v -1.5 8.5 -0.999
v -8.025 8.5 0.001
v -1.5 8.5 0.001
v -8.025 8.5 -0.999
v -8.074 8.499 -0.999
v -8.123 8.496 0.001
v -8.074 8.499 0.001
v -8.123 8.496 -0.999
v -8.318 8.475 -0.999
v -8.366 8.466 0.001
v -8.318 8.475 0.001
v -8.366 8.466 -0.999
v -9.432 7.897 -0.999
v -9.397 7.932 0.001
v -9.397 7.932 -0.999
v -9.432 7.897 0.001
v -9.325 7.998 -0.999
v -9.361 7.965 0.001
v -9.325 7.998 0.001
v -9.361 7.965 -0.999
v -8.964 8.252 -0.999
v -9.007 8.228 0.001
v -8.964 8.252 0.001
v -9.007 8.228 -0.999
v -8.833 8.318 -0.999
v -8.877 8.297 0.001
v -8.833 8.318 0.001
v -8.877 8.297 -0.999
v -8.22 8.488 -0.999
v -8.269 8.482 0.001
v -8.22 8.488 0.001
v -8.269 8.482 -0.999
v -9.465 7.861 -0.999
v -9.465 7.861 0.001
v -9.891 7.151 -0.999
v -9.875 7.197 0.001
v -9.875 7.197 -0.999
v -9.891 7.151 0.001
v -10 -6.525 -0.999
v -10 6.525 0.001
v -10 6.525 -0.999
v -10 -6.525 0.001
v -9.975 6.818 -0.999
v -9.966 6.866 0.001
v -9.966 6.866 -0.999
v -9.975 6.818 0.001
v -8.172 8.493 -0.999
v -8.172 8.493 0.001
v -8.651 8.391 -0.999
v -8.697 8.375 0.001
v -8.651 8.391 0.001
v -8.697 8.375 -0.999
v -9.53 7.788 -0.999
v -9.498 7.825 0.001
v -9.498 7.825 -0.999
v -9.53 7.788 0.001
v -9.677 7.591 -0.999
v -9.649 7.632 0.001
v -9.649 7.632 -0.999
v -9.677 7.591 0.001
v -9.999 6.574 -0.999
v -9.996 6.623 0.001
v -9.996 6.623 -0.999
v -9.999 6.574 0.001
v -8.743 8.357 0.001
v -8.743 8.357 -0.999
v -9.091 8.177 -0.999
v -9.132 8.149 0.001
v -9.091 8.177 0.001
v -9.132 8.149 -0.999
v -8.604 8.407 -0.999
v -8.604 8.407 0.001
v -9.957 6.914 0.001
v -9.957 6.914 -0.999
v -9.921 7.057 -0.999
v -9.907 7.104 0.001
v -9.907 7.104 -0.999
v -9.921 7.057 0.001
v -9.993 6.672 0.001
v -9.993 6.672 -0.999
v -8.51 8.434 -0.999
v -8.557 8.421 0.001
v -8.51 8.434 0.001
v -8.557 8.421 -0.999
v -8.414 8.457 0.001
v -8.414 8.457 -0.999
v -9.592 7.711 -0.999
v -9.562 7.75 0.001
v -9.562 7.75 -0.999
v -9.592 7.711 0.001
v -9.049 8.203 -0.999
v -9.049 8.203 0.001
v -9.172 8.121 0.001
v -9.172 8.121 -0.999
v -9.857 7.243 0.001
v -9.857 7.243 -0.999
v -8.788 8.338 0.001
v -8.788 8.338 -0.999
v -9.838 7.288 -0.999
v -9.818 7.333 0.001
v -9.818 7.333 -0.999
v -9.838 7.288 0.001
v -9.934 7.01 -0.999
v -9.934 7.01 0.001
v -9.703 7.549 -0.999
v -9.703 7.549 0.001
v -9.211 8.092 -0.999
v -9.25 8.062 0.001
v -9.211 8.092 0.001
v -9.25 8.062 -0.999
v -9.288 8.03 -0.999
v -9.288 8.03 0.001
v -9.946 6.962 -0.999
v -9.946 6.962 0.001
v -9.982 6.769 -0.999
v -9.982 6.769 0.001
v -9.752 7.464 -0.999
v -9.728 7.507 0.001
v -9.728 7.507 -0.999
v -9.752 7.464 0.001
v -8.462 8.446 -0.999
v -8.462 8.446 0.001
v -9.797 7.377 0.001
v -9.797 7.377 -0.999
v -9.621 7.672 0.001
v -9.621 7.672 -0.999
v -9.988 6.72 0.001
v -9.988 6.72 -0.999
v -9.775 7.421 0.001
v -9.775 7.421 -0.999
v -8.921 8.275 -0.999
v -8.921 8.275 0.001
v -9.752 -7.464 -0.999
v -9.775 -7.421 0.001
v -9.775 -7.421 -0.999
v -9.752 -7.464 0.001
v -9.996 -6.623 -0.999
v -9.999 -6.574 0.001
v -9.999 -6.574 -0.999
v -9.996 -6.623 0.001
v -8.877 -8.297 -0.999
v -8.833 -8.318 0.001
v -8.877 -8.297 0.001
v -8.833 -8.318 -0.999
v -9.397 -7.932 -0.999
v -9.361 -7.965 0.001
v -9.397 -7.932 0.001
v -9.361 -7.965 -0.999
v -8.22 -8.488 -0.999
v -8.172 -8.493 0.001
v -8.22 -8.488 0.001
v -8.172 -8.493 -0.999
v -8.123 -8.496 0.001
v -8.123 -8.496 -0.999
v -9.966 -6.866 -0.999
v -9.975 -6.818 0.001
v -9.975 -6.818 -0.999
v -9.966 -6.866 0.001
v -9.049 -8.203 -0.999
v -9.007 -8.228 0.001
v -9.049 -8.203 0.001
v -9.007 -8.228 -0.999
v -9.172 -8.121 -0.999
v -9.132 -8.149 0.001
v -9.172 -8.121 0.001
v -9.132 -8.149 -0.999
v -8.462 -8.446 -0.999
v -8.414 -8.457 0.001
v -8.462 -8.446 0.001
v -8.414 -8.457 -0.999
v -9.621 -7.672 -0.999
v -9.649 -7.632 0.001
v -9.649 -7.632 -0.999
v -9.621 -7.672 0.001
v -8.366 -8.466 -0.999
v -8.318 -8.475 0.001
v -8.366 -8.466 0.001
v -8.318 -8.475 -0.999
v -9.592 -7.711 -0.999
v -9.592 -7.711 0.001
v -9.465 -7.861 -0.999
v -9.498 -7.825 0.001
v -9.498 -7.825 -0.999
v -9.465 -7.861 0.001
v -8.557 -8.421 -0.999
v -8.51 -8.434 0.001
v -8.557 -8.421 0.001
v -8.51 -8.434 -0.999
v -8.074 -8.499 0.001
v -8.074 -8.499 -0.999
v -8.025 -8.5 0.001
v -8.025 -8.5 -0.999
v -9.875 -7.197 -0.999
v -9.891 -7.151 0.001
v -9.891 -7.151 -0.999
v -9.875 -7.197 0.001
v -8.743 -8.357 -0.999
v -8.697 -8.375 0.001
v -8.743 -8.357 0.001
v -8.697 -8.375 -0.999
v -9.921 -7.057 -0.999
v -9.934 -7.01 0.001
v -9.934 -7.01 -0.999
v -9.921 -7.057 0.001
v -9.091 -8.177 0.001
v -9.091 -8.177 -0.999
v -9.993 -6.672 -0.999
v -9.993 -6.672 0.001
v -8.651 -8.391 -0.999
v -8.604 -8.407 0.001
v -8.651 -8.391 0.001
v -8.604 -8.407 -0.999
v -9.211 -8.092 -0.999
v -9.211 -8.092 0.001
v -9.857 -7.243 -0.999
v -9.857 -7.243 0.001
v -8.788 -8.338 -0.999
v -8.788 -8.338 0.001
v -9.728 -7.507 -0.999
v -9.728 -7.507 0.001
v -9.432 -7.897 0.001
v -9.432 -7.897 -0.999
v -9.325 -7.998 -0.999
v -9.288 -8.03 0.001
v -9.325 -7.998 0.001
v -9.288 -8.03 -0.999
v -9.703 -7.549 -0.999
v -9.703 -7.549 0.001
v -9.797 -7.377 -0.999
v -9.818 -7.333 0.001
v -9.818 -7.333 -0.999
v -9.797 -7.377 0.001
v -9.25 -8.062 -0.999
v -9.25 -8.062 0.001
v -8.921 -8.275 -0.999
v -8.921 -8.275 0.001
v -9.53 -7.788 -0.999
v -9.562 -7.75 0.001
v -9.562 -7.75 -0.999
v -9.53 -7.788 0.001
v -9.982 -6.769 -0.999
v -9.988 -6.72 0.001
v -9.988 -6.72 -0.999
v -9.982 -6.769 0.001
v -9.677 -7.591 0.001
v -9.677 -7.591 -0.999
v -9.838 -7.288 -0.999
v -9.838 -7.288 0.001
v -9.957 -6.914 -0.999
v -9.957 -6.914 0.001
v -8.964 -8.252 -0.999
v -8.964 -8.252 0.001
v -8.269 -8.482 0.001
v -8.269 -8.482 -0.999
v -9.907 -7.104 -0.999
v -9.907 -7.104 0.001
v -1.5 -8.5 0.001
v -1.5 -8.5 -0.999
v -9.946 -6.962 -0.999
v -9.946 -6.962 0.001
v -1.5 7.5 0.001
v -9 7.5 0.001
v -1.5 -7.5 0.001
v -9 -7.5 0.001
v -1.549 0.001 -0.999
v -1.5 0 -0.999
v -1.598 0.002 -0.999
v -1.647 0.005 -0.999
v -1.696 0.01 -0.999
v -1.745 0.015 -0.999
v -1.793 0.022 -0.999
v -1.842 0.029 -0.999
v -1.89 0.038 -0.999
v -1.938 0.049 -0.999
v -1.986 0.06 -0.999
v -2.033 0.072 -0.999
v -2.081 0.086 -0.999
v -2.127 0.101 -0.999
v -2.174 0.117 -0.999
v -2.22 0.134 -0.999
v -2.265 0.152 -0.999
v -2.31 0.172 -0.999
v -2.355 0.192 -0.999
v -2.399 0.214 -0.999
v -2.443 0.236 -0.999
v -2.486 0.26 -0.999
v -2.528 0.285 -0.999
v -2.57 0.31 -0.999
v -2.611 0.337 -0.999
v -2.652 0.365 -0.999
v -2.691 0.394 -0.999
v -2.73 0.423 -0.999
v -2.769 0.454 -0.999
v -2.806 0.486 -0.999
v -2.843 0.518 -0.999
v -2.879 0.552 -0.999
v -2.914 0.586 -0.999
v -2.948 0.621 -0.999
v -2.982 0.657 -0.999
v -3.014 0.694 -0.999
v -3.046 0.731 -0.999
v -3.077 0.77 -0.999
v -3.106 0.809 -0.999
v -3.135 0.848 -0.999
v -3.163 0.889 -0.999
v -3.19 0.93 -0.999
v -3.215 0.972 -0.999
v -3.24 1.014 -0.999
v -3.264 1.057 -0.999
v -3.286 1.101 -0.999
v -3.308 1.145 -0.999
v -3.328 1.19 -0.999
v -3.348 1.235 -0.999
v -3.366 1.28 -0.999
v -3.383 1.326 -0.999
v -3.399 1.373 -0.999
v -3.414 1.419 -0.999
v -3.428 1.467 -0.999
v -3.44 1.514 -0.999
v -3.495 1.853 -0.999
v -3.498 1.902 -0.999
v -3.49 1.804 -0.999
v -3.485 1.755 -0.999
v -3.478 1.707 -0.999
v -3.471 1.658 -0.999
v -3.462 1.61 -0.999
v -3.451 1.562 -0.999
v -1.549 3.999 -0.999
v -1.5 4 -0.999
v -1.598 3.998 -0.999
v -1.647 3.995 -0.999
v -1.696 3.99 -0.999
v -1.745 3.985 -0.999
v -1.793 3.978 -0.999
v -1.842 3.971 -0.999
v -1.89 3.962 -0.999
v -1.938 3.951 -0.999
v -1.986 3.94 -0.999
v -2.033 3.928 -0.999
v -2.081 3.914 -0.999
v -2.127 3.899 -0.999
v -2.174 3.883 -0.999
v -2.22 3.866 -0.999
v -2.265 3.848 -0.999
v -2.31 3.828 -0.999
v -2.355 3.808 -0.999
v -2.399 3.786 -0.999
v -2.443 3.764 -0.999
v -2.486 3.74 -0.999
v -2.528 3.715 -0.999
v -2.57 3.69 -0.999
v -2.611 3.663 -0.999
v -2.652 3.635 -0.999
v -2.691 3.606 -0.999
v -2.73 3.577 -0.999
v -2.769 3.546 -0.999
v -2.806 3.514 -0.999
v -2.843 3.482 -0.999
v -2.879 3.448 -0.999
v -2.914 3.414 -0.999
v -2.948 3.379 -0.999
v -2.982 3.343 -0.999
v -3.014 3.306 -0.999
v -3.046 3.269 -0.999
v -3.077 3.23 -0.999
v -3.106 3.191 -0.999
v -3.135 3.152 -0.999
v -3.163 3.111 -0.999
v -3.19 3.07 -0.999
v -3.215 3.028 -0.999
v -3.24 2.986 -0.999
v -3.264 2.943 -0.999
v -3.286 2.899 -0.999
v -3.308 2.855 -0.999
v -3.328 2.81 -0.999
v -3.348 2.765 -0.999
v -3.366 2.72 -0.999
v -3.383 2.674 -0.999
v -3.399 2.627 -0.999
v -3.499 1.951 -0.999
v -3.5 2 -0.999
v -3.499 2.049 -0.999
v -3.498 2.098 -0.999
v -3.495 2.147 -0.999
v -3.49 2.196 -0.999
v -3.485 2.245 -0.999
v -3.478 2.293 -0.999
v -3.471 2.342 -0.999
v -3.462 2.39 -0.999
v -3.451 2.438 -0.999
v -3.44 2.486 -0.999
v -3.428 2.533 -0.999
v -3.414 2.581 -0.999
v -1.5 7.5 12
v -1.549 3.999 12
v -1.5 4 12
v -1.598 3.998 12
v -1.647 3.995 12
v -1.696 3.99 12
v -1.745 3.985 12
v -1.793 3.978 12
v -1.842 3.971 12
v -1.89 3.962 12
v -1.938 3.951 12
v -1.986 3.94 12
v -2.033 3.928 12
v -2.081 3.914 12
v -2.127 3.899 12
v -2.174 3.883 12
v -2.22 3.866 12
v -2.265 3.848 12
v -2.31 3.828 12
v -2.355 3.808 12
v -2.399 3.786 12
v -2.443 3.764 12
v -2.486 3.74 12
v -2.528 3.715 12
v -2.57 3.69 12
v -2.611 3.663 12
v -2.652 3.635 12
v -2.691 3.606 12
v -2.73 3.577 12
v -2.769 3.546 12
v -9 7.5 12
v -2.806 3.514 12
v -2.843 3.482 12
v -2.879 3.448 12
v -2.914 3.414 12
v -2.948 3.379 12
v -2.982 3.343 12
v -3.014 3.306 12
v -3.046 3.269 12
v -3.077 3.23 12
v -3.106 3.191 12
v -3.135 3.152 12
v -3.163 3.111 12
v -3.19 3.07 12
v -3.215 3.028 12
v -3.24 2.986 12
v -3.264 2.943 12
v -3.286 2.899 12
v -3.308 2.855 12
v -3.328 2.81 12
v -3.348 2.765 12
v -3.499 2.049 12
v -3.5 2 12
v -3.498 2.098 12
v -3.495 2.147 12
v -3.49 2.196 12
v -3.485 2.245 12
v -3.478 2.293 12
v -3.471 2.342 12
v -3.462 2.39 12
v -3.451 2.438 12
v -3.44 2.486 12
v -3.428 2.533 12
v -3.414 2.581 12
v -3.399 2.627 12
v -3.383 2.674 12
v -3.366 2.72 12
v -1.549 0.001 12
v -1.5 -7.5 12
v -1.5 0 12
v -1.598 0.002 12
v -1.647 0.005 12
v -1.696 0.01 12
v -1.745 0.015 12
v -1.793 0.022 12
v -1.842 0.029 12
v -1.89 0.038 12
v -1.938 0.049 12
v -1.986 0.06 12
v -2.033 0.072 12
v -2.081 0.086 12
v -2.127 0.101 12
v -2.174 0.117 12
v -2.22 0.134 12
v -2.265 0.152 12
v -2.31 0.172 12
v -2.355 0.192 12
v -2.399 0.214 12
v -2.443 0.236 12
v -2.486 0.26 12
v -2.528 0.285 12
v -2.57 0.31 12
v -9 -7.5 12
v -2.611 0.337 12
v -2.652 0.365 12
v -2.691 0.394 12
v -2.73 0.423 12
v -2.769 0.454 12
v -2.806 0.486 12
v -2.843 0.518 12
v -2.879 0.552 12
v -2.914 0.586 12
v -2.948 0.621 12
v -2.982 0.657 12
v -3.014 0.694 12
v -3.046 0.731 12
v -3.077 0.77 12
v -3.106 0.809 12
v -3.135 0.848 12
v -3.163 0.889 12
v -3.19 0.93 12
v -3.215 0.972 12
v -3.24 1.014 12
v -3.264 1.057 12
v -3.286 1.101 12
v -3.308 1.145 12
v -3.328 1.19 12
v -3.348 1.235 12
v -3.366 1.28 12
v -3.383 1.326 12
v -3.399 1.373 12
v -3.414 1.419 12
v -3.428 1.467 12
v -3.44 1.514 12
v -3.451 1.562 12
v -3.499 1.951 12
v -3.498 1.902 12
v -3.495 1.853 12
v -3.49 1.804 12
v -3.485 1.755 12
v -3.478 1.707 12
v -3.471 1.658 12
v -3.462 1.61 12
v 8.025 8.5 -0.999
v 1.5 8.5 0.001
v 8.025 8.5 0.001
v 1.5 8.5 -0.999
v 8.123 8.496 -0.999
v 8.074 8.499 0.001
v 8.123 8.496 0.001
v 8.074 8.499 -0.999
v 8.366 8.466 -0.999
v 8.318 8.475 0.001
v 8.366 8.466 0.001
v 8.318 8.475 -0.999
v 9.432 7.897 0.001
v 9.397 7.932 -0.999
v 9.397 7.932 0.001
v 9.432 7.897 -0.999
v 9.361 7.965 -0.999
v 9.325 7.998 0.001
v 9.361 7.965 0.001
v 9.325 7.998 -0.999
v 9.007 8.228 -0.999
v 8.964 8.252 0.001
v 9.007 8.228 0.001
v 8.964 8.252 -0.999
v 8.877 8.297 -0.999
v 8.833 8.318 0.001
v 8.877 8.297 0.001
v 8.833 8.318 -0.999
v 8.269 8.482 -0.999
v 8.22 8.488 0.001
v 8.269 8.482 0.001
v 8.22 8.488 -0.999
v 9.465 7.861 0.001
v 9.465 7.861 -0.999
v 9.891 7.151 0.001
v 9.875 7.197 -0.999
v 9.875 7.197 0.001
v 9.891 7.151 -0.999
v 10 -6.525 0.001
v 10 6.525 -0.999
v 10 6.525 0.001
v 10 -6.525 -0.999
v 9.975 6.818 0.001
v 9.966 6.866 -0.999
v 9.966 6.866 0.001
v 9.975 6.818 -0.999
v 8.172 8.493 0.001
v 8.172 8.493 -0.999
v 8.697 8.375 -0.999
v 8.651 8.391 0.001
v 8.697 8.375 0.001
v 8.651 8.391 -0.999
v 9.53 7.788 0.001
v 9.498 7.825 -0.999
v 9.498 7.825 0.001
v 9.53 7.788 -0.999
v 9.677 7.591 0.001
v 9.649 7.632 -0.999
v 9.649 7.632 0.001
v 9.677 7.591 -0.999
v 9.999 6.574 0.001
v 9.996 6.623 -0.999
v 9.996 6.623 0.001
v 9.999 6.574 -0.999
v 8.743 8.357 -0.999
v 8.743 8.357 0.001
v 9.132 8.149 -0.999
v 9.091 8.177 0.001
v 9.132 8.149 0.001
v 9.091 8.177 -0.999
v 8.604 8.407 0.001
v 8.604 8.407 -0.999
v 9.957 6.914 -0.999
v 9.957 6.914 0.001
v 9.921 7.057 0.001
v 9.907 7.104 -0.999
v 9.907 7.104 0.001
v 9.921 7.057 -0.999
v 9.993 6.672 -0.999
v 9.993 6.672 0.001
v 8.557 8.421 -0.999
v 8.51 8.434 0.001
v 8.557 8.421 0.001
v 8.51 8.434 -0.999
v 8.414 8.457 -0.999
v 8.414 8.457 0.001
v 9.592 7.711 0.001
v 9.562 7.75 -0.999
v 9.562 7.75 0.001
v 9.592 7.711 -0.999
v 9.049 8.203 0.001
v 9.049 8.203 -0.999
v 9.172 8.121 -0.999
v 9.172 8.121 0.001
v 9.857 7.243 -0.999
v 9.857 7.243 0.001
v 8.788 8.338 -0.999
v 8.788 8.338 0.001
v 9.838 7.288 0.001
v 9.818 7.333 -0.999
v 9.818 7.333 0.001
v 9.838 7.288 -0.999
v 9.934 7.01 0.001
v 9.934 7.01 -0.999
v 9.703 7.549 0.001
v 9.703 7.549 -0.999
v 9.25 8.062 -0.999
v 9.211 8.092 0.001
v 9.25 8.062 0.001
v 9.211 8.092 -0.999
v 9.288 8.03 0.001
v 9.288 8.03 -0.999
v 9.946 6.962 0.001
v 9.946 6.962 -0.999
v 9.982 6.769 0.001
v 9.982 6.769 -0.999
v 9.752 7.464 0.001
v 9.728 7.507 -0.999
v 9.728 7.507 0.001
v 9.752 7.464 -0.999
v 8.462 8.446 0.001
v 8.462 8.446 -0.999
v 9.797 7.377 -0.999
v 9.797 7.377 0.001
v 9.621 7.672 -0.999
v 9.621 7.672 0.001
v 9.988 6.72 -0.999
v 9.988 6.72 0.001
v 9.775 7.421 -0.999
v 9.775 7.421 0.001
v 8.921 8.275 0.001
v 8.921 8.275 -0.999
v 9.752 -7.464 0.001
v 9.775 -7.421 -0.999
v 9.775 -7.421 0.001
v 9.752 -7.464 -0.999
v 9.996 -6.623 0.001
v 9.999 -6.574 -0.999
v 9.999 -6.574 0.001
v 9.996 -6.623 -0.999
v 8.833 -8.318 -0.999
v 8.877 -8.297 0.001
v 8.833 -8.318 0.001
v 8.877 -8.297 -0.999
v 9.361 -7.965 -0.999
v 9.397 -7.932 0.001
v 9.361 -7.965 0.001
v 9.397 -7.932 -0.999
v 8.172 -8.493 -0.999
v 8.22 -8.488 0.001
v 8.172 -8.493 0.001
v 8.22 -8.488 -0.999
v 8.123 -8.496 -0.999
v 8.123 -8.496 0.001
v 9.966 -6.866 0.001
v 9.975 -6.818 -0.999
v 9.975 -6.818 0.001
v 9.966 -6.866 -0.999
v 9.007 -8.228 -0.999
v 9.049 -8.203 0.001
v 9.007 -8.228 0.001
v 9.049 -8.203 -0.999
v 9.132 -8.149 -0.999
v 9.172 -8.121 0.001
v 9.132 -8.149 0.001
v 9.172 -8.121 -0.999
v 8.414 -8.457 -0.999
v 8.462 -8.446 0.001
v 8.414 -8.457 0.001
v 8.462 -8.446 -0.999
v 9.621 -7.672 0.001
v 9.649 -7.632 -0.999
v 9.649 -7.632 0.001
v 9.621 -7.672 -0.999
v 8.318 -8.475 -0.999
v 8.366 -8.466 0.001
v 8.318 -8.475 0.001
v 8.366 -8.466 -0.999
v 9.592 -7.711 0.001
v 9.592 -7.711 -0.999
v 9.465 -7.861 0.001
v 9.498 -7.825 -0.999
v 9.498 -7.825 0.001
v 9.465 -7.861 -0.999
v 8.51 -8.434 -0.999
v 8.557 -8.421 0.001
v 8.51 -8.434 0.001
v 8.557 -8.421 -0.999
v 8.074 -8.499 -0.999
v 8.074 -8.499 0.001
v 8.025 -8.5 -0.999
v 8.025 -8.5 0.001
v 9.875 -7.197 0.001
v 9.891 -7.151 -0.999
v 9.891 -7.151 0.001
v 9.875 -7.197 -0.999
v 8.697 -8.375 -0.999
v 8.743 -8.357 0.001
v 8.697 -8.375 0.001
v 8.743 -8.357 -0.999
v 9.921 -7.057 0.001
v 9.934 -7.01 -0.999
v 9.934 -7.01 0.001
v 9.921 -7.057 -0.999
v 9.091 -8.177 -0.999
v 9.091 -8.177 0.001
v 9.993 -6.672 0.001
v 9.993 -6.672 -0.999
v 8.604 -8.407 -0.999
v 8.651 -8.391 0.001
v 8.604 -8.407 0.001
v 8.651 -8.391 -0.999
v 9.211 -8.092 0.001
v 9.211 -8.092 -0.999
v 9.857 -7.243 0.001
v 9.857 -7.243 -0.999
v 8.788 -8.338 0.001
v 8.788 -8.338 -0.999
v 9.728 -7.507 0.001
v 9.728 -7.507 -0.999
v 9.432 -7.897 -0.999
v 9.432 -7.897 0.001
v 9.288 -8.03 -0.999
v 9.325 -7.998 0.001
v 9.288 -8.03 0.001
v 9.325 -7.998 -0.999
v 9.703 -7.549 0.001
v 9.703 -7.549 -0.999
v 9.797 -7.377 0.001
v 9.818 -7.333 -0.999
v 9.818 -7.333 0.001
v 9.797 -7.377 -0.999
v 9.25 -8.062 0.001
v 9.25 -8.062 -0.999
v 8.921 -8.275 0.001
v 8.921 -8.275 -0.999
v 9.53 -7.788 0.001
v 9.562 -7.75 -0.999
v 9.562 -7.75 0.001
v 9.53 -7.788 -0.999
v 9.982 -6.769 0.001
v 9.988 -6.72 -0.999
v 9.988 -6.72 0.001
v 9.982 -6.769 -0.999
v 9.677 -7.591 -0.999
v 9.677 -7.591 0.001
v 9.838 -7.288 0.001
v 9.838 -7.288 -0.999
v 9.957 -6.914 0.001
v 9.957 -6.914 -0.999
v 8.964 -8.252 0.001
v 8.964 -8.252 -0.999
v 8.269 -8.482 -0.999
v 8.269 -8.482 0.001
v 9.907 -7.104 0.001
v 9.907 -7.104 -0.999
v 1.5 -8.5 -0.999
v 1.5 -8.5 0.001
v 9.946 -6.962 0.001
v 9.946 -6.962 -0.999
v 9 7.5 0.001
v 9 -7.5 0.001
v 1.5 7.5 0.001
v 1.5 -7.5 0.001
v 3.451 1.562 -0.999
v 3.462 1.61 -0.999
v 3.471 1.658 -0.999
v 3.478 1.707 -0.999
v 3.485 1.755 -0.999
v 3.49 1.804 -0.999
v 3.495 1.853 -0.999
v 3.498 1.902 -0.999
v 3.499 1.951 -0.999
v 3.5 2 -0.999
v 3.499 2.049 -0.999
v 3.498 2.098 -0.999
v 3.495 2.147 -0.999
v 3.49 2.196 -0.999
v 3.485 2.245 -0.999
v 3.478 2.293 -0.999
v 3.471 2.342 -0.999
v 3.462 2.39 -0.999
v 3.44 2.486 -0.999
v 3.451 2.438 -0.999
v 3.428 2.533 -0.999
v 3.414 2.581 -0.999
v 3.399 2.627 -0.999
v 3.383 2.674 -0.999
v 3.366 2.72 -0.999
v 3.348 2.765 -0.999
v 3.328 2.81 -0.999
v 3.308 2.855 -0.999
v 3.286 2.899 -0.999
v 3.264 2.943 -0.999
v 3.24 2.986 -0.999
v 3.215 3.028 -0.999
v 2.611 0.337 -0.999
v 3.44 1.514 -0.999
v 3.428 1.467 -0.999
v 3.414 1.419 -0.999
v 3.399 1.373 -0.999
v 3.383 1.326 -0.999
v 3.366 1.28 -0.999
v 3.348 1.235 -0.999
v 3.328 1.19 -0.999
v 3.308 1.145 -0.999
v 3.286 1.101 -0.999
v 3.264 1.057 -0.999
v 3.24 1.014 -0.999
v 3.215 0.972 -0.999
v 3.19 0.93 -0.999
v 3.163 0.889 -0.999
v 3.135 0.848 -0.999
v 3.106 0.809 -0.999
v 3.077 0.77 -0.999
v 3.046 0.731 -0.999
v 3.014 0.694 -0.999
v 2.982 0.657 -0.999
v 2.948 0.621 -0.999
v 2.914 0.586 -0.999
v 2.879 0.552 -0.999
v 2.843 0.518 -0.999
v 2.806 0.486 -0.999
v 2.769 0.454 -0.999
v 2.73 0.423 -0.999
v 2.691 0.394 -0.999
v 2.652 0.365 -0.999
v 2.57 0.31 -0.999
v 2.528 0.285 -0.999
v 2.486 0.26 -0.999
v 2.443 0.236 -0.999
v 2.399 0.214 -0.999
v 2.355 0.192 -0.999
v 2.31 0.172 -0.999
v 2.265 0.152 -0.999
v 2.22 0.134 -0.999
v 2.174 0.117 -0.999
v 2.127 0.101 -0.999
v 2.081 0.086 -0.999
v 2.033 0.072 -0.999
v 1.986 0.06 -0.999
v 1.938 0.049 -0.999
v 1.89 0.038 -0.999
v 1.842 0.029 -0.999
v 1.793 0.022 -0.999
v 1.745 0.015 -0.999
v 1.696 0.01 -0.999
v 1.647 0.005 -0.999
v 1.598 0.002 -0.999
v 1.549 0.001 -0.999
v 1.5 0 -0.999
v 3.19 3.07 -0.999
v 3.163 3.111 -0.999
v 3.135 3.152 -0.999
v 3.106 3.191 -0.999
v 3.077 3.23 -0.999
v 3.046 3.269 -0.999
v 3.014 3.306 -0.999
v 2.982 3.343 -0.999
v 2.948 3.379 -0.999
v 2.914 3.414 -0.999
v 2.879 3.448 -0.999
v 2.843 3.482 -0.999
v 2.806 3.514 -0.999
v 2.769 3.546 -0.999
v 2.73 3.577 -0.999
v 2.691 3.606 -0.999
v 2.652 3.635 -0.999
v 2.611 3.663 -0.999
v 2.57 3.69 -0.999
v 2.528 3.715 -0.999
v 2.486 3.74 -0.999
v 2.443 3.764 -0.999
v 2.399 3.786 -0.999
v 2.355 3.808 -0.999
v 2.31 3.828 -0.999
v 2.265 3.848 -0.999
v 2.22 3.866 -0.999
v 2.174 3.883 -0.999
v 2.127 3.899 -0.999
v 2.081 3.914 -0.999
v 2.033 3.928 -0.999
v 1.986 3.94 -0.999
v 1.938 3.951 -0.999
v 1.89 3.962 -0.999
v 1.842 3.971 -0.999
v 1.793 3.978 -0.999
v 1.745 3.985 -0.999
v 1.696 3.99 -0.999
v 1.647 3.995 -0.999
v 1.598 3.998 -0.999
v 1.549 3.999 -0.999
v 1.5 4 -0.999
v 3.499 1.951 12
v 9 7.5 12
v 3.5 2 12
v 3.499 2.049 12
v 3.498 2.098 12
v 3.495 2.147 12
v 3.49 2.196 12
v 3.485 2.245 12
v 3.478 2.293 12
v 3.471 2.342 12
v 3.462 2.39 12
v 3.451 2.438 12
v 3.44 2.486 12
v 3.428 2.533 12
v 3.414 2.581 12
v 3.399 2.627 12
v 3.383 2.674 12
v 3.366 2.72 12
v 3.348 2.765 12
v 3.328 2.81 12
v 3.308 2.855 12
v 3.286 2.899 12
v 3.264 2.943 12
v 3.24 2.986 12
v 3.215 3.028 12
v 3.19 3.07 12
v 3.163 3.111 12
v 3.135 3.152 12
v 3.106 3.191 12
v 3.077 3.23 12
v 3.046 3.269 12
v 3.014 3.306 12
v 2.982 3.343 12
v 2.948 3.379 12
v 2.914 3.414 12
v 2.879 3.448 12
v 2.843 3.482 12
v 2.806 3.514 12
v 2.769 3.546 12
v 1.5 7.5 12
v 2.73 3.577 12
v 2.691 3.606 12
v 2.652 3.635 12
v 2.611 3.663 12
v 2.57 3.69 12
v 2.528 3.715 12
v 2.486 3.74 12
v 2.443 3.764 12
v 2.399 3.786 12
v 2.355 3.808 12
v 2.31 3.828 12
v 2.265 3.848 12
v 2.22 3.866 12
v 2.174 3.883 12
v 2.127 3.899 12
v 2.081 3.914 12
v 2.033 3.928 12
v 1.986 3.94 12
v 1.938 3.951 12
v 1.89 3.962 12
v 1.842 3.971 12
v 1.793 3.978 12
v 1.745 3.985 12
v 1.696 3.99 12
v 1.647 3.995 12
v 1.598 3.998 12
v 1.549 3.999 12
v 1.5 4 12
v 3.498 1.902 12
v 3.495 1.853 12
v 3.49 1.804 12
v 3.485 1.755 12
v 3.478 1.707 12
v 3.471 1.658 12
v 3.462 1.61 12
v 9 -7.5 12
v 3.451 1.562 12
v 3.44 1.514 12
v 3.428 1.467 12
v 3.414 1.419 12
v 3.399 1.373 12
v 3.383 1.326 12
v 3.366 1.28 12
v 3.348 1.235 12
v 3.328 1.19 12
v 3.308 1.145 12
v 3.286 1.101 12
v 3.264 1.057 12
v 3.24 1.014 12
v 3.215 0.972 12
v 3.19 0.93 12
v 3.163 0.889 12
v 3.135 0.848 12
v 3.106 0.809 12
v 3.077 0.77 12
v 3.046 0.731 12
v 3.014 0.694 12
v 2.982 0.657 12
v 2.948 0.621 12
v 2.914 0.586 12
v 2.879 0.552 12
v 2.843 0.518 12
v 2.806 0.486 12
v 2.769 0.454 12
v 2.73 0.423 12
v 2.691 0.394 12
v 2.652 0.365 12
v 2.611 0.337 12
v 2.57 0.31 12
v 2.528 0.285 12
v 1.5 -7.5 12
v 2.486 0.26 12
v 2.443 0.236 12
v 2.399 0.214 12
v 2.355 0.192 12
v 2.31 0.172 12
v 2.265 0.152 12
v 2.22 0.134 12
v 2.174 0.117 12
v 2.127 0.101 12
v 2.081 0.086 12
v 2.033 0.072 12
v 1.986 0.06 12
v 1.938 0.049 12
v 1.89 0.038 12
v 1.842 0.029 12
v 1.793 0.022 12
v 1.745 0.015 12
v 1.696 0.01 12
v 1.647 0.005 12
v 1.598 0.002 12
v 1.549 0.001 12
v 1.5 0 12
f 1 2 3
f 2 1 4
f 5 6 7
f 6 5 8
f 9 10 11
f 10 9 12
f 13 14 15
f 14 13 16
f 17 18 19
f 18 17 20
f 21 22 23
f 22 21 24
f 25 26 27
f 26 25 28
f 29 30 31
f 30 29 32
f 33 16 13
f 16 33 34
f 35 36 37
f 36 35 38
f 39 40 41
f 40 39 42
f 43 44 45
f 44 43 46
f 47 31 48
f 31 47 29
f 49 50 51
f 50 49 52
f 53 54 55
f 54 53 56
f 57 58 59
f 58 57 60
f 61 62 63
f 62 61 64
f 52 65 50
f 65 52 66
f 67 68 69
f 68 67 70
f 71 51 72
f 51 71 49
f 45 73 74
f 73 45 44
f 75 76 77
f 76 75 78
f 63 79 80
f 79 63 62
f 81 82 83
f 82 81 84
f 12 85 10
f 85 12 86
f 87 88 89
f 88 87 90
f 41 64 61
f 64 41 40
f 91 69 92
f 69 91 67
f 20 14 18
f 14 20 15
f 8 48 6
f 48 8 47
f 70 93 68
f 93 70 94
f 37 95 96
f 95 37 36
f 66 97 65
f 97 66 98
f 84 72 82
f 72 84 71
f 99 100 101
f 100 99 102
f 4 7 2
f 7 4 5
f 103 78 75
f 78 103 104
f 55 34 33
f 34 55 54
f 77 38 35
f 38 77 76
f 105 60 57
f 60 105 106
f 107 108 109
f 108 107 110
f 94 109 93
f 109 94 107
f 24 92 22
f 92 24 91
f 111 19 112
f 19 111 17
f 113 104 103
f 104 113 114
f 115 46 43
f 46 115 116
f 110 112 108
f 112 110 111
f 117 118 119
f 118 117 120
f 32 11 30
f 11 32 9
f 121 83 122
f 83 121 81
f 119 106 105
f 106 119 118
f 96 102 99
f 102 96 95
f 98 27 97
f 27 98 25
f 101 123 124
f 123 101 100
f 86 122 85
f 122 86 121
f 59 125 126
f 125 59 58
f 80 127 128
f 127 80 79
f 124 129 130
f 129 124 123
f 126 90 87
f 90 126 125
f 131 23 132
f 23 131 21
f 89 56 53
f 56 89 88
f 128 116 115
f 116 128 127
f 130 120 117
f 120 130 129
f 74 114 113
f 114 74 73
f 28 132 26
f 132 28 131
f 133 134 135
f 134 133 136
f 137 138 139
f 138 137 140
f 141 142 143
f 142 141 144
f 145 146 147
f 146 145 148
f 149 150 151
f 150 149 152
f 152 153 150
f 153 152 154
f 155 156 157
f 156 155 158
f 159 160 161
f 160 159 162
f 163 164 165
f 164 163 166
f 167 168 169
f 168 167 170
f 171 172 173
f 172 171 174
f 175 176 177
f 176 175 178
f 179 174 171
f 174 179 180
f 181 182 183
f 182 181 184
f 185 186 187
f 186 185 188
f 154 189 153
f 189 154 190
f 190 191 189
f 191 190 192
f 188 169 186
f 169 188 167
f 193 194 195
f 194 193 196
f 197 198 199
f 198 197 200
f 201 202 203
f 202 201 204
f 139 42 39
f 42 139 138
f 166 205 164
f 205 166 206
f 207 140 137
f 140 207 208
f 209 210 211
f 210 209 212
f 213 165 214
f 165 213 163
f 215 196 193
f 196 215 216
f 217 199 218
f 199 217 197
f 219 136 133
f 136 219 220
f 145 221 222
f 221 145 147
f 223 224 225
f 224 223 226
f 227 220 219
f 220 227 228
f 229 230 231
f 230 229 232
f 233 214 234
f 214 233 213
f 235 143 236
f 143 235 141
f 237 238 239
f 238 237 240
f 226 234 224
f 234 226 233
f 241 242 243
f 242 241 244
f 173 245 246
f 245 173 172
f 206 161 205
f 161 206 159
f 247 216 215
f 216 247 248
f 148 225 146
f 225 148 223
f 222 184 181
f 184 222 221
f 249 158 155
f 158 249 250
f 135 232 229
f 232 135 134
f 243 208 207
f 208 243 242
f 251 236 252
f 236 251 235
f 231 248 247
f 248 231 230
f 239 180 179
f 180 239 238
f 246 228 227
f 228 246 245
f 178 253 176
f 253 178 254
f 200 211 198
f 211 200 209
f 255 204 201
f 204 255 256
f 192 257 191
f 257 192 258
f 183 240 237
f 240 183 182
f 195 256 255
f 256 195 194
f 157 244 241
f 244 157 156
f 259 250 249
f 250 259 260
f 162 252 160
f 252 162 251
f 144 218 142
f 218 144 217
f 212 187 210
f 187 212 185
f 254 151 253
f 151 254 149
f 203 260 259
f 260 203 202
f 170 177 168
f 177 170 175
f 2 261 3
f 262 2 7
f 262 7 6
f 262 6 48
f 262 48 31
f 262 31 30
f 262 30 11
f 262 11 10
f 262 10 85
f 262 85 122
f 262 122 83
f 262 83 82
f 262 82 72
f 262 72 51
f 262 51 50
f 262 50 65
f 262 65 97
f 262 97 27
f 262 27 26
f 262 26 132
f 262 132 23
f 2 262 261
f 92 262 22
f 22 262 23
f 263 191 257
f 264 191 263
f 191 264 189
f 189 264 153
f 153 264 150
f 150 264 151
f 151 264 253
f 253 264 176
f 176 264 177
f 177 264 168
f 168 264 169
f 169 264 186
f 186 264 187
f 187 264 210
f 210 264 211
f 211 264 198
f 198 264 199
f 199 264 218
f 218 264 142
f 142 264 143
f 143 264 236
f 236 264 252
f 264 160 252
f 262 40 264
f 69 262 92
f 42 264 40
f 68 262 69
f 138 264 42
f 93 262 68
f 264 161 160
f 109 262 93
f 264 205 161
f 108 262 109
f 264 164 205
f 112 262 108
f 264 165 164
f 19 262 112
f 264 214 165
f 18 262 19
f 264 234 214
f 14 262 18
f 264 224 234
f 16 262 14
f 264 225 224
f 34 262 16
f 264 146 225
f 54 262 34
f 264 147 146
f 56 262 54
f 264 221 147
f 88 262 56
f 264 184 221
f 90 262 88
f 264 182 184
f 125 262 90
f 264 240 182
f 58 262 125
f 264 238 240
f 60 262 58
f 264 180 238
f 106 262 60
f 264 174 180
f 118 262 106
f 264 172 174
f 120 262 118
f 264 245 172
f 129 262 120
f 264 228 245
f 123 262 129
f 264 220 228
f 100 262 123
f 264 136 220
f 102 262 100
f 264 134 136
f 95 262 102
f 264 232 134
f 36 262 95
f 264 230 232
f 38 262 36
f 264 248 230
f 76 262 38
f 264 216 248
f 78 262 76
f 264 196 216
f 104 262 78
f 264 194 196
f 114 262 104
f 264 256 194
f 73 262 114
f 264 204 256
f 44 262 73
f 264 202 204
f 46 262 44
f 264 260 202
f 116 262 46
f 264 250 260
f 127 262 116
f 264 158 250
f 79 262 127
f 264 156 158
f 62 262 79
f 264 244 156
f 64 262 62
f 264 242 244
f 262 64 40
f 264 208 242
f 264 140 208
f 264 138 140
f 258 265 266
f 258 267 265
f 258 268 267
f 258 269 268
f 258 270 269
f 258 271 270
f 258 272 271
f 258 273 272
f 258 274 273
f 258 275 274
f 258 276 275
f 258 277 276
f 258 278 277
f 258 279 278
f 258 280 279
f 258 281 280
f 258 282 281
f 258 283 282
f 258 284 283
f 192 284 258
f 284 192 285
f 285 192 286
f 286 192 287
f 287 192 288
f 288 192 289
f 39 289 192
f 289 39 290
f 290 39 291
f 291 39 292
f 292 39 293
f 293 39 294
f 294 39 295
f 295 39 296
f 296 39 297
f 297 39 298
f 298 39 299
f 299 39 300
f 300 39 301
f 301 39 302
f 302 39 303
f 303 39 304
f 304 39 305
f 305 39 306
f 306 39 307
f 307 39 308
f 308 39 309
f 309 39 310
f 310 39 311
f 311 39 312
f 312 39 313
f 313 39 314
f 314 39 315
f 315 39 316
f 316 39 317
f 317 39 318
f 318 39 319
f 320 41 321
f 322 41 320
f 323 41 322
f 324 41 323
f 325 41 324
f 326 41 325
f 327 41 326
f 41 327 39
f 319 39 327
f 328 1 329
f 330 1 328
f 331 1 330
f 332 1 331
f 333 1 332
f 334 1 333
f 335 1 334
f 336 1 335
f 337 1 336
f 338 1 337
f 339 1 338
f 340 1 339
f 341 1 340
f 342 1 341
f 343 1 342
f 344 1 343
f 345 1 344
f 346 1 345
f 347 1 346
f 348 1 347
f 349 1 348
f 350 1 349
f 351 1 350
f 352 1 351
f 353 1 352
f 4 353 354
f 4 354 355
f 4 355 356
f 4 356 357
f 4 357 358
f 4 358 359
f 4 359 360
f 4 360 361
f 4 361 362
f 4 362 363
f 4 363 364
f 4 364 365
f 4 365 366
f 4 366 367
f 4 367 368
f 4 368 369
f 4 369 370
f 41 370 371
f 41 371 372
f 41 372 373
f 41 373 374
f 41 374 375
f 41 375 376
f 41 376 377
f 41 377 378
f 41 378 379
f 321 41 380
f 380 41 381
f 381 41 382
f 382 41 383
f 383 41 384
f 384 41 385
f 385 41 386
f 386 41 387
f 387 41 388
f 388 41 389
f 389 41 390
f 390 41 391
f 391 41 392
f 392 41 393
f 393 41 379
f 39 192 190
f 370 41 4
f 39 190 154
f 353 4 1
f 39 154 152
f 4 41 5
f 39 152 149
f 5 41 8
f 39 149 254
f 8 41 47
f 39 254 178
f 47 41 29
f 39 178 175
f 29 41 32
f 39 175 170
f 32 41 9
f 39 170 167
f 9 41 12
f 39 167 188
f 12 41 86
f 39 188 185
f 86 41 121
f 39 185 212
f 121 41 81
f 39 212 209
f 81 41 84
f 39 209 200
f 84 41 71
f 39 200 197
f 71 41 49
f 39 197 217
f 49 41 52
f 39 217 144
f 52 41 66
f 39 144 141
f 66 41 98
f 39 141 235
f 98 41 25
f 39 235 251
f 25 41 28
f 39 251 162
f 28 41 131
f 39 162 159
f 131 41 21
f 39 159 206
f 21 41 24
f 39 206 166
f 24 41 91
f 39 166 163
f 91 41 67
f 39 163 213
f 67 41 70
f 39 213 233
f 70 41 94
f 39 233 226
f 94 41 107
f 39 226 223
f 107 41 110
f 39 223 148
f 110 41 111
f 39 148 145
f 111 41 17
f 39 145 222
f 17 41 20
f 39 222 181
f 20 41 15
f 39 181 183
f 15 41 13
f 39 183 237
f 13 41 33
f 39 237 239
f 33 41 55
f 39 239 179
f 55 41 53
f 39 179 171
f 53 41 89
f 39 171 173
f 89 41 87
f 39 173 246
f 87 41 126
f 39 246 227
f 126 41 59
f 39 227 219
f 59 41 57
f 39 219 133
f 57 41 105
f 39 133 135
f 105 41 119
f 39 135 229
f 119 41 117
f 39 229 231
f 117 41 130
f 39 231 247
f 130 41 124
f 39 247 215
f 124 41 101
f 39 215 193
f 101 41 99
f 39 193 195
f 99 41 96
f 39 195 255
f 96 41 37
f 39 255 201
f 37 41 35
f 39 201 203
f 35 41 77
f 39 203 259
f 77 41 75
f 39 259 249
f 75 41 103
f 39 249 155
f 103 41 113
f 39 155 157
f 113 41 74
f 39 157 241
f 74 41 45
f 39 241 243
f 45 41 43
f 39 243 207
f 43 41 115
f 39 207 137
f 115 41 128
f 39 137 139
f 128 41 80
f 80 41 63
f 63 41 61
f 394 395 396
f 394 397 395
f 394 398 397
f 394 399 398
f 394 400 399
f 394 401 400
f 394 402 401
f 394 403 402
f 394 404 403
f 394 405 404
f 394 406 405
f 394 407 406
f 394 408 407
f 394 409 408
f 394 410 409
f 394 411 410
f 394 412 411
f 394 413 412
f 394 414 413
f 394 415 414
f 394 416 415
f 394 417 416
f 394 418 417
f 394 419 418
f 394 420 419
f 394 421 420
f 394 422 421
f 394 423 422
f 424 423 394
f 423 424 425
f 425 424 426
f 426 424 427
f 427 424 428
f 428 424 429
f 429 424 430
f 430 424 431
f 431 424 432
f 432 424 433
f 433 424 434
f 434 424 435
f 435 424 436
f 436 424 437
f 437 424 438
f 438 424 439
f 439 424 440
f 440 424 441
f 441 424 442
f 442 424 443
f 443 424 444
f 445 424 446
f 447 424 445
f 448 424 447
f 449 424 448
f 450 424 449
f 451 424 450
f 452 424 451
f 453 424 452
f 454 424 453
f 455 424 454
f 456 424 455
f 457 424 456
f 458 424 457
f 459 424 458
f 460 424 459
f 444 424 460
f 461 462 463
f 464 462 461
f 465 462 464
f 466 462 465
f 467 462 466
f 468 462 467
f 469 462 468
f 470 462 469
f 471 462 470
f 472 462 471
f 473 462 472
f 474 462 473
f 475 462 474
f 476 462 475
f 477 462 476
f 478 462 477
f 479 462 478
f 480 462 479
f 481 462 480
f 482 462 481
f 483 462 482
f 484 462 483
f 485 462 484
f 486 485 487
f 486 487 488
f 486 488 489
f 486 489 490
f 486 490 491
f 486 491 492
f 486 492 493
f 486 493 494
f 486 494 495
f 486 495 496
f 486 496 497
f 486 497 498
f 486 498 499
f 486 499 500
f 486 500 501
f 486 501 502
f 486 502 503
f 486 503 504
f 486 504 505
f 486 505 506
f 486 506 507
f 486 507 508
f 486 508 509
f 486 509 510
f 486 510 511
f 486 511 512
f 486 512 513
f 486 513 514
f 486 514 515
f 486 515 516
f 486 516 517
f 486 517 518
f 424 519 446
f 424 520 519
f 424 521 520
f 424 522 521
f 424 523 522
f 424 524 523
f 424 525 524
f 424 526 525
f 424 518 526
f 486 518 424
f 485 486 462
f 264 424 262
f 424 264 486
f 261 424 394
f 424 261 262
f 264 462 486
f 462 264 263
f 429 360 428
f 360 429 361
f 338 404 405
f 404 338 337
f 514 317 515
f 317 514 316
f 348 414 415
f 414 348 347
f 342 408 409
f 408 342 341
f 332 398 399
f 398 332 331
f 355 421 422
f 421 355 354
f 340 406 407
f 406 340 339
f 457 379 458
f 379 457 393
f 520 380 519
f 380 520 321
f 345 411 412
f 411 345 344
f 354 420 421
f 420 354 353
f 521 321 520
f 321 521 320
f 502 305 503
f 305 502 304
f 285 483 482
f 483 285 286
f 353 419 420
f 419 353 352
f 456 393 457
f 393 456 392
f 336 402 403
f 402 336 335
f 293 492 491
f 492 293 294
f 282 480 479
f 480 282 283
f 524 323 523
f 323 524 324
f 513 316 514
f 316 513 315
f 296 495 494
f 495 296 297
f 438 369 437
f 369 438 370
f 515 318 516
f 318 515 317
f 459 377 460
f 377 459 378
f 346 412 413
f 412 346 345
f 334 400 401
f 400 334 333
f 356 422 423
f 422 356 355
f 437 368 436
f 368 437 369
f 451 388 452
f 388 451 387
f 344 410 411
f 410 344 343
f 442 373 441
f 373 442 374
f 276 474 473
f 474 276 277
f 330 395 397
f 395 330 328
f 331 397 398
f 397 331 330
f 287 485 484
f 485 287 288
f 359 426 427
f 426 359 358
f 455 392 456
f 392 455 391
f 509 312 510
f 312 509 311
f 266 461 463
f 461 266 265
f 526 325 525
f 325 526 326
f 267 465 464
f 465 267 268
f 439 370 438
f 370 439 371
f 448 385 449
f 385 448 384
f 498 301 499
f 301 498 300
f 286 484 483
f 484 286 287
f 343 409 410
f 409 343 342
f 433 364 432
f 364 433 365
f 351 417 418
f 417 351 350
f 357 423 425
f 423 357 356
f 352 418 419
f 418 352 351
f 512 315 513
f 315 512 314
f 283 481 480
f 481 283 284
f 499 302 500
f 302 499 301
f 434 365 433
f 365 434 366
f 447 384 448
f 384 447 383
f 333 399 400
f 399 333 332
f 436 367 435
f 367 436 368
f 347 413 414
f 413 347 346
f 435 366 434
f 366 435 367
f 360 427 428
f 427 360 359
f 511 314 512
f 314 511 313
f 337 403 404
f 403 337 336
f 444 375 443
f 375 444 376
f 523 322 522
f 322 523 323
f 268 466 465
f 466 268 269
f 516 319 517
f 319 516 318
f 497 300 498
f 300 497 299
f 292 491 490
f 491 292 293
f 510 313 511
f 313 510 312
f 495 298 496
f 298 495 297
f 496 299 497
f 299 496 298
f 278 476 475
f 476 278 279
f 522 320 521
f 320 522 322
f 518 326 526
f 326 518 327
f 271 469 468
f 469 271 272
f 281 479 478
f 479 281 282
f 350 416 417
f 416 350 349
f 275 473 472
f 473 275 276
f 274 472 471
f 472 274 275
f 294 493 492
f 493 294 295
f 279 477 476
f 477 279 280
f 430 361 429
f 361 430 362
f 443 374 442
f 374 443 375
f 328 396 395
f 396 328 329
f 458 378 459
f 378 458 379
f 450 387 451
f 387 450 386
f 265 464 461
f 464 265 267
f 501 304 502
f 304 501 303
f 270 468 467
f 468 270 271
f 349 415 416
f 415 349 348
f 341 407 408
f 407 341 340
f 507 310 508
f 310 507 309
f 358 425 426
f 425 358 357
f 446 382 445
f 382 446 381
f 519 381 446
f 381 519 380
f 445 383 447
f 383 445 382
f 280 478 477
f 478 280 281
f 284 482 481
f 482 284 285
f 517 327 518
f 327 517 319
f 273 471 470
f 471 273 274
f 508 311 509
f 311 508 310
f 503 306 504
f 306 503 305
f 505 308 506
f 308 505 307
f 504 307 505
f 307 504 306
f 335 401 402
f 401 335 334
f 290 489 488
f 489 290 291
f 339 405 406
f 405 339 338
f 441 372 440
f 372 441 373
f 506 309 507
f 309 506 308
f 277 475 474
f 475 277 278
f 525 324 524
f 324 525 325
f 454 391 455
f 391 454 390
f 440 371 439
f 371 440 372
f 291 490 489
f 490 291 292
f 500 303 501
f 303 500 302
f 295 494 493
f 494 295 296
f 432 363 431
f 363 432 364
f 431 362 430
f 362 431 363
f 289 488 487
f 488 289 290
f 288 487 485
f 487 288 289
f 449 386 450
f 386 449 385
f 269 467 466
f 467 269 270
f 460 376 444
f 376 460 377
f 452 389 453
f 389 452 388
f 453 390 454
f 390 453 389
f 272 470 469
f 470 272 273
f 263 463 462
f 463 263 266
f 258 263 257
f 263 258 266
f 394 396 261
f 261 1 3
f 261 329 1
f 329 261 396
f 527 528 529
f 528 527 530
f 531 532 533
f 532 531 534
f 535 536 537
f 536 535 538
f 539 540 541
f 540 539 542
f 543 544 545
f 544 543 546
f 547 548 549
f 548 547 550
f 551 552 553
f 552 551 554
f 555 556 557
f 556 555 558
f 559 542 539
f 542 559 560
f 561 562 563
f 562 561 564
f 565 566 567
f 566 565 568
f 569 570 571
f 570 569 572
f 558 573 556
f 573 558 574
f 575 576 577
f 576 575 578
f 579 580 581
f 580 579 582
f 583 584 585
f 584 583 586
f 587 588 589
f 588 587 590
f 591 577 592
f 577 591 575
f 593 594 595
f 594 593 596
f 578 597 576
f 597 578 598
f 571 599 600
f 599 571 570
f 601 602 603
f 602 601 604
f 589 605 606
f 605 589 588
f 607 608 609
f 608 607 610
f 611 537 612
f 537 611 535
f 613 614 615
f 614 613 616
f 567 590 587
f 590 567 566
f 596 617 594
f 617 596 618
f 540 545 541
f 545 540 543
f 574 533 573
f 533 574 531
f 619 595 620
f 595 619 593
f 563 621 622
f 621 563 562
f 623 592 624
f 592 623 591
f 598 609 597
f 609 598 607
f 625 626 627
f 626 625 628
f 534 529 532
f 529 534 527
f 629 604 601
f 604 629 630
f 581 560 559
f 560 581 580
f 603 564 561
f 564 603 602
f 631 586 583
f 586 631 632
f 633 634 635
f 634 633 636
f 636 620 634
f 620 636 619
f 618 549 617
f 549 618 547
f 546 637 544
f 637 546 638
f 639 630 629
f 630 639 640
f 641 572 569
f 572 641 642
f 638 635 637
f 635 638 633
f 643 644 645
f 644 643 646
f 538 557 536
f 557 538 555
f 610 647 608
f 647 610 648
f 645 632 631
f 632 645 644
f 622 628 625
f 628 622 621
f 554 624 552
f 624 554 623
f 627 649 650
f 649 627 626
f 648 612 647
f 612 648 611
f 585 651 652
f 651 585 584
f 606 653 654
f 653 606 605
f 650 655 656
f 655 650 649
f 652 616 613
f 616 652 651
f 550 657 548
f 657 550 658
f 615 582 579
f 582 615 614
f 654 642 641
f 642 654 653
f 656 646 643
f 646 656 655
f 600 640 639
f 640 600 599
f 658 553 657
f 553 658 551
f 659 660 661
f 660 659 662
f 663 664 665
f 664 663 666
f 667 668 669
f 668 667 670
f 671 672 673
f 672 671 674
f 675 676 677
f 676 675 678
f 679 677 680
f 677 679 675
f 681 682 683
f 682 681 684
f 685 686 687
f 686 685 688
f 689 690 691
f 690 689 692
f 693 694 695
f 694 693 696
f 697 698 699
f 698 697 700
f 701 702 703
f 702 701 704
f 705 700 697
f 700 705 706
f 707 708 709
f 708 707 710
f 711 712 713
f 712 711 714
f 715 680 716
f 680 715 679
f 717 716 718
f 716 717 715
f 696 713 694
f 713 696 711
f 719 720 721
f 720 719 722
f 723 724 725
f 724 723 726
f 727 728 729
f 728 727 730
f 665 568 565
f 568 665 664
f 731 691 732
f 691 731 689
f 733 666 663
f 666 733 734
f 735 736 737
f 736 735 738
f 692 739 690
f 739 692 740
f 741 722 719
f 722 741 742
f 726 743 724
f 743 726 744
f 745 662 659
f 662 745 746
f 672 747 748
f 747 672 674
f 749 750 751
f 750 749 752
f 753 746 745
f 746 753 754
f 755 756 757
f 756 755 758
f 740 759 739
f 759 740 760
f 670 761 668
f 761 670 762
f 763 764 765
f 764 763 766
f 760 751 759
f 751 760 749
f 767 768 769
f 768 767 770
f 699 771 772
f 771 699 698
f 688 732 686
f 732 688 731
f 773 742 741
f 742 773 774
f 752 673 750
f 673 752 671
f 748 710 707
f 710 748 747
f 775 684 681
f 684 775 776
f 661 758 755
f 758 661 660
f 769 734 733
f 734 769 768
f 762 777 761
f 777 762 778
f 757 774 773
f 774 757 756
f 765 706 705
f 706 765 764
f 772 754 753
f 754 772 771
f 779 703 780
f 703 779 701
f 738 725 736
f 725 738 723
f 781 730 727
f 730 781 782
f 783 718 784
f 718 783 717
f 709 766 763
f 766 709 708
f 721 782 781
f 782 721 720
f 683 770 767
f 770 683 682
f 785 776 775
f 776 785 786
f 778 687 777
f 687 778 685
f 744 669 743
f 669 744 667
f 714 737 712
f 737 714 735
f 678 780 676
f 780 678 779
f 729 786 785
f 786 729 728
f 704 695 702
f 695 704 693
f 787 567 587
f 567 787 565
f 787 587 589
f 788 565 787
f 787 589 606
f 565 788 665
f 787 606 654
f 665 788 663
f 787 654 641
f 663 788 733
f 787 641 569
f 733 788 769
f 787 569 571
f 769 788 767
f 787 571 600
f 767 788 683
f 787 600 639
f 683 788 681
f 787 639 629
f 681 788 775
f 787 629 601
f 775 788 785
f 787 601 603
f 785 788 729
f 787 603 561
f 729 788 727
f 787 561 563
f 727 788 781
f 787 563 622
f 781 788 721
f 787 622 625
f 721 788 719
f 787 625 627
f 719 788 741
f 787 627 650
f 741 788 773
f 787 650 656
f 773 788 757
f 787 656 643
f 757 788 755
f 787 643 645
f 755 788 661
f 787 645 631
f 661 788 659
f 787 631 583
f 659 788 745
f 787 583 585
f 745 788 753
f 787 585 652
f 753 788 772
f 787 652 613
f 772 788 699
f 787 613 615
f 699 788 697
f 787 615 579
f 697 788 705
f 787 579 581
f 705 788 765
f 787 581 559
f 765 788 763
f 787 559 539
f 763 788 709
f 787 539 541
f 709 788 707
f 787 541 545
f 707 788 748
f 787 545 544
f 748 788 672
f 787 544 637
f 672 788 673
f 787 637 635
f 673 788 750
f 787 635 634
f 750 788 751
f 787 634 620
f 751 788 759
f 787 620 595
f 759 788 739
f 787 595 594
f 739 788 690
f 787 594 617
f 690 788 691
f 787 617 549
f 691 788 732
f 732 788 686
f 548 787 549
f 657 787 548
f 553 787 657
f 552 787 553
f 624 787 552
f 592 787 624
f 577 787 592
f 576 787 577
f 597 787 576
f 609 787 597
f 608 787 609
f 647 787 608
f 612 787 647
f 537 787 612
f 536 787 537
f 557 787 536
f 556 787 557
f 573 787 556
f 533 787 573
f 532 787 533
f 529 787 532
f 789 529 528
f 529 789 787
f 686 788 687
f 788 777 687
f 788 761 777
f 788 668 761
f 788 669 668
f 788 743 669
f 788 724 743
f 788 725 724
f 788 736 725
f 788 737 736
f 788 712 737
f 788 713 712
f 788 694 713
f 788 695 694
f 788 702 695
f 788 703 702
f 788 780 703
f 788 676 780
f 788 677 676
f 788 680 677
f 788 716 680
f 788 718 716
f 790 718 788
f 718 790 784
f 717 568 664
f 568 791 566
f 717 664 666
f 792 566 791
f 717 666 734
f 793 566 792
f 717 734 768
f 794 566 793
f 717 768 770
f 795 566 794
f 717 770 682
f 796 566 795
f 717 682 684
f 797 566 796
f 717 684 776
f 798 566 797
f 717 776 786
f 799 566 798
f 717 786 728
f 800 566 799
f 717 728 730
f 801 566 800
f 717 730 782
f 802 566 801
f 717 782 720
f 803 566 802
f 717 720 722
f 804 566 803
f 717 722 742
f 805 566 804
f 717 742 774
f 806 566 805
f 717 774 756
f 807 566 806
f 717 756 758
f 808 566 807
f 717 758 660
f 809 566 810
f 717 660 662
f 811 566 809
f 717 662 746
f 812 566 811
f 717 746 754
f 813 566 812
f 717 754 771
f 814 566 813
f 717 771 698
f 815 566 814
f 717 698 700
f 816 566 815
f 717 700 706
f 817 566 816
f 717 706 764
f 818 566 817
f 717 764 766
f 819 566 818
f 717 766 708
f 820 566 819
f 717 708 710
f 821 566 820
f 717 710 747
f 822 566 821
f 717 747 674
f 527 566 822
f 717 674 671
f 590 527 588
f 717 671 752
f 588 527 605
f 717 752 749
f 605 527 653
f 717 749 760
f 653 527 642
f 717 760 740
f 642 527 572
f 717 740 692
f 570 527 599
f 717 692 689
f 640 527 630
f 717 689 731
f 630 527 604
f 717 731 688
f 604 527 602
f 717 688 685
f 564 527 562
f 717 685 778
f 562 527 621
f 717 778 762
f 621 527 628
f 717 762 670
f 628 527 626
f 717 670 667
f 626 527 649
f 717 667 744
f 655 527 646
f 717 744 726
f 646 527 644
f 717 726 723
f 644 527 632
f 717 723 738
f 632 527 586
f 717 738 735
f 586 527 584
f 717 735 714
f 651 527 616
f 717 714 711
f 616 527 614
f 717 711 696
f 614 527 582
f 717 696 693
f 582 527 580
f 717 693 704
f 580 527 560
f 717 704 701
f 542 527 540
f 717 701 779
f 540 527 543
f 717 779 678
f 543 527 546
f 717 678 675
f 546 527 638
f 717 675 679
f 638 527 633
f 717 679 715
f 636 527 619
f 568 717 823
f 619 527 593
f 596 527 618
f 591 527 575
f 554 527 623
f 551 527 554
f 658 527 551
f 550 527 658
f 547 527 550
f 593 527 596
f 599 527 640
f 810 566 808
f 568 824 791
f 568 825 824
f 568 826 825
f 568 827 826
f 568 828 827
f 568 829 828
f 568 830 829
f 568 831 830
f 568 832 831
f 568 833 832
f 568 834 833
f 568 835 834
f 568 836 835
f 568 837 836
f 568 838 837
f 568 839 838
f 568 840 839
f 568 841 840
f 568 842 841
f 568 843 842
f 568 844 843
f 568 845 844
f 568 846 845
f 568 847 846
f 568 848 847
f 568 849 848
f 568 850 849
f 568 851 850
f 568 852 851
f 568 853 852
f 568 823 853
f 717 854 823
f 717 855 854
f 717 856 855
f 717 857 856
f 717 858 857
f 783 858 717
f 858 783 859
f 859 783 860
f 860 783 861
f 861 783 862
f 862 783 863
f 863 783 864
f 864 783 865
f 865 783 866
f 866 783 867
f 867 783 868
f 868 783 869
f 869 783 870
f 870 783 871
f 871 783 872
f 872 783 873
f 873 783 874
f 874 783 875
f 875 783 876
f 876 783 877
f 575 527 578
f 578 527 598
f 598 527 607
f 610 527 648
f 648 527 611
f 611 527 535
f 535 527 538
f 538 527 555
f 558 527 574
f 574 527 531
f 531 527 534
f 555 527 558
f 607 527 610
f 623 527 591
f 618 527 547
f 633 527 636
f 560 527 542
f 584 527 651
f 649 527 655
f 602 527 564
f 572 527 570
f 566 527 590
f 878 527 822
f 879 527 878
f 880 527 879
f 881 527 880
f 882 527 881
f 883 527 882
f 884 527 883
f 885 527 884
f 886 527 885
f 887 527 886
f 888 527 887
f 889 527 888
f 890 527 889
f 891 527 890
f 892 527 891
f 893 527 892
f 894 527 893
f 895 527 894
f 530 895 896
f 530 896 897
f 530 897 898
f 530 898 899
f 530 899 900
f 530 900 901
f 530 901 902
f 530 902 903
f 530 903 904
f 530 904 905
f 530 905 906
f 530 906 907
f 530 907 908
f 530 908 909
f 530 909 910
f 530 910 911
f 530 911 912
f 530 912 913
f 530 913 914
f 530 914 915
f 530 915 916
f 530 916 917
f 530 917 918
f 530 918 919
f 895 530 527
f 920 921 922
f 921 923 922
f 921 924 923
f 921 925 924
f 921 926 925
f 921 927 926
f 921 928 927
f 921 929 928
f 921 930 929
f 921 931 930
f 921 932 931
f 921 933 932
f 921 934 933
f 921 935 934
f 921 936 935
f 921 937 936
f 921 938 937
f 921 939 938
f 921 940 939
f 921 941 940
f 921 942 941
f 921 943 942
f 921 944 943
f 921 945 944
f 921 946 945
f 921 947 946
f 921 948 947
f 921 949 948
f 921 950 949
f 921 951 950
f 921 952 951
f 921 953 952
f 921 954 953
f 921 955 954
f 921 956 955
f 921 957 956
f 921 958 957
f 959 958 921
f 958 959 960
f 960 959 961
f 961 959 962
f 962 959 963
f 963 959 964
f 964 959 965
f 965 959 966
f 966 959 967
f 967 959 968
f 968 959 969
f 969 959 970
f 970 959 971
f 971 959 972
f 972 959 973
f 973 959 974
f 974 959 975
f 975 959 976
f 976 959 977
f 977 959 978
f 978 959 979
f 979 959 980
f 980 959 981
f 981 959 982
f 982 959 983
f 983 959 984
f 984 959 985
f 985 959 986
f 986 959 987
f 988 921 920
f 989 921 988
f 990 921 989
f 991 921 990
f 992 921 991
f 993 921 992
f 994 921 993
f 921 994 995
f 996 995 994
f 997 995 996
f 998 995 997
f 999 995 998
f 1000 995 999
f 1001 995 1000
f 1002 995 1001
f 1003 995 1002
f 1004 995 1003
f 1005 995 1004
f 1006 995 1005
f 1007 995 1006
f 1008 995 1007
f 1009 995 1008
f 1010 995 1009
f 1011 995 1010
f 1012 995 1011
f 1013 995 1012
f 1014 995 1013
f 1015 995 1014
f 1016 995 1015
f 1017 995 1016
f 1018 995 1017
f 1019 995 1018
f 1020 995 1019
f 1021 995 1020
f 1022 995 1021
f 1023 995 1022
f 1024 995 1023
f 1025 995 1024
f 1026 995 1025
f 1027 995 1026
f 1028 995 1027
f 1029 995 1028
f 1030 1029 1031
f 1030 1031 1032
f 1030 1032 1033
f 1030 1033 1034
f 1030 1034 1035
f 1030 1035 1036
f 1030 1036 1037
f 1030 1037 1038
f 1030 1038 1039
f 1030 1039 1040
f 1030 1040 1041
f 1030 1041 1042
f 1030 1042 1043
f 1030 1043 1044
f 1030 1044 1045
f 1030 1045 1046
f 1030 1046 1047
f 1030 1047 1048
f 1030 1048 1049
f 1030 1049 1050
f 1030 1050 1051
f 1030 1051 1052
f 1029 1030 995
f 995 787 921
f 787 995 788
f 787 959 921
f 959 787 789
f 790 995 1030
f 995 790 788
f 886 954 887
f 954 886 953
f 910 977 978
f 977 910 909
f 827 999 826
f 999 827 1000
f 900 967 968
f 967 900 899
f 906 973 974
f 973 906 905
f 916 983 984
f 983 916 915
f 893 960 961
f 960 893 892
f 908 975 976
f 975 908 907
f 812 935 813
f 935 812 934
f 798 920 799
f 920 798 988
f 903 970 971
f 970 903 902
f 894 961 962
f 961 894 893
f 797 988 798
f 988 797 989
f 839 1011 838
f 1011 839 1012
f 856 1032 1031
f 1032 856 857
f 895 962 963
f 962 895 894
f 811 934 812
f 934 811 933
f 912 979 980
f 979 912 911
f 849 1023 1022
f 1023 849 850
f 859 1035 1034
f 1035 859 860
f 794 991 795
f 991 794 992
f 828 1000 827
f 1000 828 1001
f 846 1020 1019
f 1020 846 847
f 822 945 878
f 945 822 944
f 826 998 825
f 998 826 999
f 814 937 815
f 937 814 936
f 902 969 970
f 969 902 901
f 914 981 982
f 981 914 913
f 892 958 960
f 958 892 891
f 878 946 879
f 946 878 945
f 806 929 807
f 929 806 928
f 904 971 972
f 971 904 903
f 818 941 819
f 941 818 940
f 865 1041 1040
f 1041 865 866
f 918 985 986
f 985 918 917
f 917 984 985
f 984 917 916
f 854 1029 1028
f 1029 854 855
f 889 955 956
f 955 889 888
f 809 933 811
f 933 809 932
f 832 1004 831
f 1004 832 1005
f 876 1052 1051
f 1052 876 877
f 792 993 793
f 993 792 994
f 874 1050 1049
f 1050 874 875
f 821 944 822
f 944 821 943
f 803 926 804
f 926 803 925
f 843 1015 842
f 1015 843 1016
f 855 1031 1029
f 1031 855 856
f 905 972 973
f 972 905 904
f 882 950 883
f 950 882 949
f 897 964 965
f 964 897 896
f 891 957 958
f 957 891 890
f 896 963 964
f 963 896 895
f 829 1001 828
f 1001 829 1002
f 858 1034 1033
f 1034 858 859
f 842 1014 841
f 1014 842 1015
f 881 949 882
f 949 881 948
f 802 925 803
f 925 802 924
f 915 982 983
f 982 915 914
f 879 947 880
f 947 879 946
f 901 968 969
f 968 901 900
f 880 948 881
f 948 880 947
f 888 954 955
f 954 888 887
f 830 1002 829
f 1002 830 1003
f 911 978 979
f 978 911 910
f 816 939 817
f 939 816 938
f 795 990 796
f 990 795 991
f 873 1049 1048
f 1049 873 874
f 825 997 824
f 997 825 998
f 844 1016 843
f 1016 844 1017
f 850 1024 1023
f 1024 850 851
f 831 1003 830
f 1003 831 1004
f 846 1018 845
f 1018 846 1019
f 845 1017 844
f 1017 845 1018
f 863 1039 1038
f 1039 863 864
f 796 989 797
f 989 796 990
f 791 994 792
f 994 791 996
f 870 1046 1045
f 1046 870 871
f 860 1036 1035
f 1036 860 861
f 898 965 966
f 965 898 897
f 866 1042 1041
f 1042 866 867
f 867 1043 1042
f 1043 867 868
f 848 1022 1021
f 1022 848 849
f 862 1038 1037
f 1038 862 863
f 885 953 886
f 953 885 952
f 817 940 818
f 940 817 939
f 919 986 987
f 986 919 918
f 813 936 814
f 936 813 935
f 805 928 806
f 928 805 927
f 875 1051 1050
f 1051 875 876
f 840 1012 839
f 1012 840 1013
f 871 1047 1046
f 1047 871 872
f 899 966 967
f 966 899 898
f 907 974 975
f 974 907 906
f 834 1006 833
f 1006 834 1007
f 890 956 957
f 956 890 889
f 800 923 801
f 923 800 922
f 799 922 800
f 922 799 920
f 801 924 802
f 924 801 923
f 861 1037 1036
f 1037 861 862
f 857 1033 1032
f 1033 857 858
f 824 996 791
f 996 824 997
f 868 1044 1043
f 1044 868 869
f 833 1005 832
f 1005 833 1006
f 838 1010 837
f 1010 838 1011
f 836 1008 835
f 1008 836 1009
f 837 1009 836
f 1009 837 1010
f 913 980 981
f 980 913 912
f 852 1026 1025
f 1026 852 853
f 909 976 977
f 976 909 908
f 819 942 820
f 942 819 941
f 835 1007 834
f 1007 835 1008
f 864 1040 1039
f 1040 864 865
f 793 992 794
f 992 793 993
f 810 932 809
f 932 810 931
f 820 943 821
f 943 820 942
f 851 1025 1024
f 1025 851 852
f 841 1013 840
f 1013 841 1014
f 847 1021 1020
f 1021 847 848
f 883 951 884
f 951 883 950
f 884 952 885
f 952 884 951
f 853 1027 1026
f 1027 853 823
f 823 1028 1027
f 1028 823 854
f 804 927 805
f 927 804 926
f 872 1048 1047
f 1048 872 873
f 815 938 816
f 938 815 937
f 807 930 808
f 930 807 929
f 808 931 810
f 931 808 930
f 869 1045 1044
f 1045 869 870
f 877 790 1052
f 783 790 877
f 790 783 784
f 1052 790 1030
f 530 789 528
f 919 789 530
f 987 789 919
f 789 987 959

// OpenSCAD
include <BOSL/constants.scad>
use <BOSL/shapes.scad>
use <BOSL/transforms.scad>

include <constants.scad>


usb_cable_diameter = 4.0;
usb_cable_radius = usb_cable_diameter / 2;

hole_ypos = strain_relief_y / 2 - usb_cable_radius - 3.5;

xflip_copy() {
    xmove(-1.5) {
        left_half() {
            difference() {
                union() {
                    cuboid([strain_relief_x, strain_relief_y, strain_relief_z], align=V_TOP);
                    zmove(.001) {
                        cuboid(
                            [
                                strain_relief_x + strain_relief_lip,
                                strain_relief_y + strain_relief_lip,
                                strain_relief_lip_z
                            ],
                            fillet=2,
                            edges=EDGES_Z_ALL,
                            align=V_BOTTOM
                        );
                    }
                }
                move([0, hole_ypos, -strain_relief_lip_z]) {
                    cyl(
                        d=usb_cable_diameter,
                        h=strain_relief_z + strain_relief_lip_z + .002,
                        align=V_TOP
                    );
                }
            }
        }
    }
}
